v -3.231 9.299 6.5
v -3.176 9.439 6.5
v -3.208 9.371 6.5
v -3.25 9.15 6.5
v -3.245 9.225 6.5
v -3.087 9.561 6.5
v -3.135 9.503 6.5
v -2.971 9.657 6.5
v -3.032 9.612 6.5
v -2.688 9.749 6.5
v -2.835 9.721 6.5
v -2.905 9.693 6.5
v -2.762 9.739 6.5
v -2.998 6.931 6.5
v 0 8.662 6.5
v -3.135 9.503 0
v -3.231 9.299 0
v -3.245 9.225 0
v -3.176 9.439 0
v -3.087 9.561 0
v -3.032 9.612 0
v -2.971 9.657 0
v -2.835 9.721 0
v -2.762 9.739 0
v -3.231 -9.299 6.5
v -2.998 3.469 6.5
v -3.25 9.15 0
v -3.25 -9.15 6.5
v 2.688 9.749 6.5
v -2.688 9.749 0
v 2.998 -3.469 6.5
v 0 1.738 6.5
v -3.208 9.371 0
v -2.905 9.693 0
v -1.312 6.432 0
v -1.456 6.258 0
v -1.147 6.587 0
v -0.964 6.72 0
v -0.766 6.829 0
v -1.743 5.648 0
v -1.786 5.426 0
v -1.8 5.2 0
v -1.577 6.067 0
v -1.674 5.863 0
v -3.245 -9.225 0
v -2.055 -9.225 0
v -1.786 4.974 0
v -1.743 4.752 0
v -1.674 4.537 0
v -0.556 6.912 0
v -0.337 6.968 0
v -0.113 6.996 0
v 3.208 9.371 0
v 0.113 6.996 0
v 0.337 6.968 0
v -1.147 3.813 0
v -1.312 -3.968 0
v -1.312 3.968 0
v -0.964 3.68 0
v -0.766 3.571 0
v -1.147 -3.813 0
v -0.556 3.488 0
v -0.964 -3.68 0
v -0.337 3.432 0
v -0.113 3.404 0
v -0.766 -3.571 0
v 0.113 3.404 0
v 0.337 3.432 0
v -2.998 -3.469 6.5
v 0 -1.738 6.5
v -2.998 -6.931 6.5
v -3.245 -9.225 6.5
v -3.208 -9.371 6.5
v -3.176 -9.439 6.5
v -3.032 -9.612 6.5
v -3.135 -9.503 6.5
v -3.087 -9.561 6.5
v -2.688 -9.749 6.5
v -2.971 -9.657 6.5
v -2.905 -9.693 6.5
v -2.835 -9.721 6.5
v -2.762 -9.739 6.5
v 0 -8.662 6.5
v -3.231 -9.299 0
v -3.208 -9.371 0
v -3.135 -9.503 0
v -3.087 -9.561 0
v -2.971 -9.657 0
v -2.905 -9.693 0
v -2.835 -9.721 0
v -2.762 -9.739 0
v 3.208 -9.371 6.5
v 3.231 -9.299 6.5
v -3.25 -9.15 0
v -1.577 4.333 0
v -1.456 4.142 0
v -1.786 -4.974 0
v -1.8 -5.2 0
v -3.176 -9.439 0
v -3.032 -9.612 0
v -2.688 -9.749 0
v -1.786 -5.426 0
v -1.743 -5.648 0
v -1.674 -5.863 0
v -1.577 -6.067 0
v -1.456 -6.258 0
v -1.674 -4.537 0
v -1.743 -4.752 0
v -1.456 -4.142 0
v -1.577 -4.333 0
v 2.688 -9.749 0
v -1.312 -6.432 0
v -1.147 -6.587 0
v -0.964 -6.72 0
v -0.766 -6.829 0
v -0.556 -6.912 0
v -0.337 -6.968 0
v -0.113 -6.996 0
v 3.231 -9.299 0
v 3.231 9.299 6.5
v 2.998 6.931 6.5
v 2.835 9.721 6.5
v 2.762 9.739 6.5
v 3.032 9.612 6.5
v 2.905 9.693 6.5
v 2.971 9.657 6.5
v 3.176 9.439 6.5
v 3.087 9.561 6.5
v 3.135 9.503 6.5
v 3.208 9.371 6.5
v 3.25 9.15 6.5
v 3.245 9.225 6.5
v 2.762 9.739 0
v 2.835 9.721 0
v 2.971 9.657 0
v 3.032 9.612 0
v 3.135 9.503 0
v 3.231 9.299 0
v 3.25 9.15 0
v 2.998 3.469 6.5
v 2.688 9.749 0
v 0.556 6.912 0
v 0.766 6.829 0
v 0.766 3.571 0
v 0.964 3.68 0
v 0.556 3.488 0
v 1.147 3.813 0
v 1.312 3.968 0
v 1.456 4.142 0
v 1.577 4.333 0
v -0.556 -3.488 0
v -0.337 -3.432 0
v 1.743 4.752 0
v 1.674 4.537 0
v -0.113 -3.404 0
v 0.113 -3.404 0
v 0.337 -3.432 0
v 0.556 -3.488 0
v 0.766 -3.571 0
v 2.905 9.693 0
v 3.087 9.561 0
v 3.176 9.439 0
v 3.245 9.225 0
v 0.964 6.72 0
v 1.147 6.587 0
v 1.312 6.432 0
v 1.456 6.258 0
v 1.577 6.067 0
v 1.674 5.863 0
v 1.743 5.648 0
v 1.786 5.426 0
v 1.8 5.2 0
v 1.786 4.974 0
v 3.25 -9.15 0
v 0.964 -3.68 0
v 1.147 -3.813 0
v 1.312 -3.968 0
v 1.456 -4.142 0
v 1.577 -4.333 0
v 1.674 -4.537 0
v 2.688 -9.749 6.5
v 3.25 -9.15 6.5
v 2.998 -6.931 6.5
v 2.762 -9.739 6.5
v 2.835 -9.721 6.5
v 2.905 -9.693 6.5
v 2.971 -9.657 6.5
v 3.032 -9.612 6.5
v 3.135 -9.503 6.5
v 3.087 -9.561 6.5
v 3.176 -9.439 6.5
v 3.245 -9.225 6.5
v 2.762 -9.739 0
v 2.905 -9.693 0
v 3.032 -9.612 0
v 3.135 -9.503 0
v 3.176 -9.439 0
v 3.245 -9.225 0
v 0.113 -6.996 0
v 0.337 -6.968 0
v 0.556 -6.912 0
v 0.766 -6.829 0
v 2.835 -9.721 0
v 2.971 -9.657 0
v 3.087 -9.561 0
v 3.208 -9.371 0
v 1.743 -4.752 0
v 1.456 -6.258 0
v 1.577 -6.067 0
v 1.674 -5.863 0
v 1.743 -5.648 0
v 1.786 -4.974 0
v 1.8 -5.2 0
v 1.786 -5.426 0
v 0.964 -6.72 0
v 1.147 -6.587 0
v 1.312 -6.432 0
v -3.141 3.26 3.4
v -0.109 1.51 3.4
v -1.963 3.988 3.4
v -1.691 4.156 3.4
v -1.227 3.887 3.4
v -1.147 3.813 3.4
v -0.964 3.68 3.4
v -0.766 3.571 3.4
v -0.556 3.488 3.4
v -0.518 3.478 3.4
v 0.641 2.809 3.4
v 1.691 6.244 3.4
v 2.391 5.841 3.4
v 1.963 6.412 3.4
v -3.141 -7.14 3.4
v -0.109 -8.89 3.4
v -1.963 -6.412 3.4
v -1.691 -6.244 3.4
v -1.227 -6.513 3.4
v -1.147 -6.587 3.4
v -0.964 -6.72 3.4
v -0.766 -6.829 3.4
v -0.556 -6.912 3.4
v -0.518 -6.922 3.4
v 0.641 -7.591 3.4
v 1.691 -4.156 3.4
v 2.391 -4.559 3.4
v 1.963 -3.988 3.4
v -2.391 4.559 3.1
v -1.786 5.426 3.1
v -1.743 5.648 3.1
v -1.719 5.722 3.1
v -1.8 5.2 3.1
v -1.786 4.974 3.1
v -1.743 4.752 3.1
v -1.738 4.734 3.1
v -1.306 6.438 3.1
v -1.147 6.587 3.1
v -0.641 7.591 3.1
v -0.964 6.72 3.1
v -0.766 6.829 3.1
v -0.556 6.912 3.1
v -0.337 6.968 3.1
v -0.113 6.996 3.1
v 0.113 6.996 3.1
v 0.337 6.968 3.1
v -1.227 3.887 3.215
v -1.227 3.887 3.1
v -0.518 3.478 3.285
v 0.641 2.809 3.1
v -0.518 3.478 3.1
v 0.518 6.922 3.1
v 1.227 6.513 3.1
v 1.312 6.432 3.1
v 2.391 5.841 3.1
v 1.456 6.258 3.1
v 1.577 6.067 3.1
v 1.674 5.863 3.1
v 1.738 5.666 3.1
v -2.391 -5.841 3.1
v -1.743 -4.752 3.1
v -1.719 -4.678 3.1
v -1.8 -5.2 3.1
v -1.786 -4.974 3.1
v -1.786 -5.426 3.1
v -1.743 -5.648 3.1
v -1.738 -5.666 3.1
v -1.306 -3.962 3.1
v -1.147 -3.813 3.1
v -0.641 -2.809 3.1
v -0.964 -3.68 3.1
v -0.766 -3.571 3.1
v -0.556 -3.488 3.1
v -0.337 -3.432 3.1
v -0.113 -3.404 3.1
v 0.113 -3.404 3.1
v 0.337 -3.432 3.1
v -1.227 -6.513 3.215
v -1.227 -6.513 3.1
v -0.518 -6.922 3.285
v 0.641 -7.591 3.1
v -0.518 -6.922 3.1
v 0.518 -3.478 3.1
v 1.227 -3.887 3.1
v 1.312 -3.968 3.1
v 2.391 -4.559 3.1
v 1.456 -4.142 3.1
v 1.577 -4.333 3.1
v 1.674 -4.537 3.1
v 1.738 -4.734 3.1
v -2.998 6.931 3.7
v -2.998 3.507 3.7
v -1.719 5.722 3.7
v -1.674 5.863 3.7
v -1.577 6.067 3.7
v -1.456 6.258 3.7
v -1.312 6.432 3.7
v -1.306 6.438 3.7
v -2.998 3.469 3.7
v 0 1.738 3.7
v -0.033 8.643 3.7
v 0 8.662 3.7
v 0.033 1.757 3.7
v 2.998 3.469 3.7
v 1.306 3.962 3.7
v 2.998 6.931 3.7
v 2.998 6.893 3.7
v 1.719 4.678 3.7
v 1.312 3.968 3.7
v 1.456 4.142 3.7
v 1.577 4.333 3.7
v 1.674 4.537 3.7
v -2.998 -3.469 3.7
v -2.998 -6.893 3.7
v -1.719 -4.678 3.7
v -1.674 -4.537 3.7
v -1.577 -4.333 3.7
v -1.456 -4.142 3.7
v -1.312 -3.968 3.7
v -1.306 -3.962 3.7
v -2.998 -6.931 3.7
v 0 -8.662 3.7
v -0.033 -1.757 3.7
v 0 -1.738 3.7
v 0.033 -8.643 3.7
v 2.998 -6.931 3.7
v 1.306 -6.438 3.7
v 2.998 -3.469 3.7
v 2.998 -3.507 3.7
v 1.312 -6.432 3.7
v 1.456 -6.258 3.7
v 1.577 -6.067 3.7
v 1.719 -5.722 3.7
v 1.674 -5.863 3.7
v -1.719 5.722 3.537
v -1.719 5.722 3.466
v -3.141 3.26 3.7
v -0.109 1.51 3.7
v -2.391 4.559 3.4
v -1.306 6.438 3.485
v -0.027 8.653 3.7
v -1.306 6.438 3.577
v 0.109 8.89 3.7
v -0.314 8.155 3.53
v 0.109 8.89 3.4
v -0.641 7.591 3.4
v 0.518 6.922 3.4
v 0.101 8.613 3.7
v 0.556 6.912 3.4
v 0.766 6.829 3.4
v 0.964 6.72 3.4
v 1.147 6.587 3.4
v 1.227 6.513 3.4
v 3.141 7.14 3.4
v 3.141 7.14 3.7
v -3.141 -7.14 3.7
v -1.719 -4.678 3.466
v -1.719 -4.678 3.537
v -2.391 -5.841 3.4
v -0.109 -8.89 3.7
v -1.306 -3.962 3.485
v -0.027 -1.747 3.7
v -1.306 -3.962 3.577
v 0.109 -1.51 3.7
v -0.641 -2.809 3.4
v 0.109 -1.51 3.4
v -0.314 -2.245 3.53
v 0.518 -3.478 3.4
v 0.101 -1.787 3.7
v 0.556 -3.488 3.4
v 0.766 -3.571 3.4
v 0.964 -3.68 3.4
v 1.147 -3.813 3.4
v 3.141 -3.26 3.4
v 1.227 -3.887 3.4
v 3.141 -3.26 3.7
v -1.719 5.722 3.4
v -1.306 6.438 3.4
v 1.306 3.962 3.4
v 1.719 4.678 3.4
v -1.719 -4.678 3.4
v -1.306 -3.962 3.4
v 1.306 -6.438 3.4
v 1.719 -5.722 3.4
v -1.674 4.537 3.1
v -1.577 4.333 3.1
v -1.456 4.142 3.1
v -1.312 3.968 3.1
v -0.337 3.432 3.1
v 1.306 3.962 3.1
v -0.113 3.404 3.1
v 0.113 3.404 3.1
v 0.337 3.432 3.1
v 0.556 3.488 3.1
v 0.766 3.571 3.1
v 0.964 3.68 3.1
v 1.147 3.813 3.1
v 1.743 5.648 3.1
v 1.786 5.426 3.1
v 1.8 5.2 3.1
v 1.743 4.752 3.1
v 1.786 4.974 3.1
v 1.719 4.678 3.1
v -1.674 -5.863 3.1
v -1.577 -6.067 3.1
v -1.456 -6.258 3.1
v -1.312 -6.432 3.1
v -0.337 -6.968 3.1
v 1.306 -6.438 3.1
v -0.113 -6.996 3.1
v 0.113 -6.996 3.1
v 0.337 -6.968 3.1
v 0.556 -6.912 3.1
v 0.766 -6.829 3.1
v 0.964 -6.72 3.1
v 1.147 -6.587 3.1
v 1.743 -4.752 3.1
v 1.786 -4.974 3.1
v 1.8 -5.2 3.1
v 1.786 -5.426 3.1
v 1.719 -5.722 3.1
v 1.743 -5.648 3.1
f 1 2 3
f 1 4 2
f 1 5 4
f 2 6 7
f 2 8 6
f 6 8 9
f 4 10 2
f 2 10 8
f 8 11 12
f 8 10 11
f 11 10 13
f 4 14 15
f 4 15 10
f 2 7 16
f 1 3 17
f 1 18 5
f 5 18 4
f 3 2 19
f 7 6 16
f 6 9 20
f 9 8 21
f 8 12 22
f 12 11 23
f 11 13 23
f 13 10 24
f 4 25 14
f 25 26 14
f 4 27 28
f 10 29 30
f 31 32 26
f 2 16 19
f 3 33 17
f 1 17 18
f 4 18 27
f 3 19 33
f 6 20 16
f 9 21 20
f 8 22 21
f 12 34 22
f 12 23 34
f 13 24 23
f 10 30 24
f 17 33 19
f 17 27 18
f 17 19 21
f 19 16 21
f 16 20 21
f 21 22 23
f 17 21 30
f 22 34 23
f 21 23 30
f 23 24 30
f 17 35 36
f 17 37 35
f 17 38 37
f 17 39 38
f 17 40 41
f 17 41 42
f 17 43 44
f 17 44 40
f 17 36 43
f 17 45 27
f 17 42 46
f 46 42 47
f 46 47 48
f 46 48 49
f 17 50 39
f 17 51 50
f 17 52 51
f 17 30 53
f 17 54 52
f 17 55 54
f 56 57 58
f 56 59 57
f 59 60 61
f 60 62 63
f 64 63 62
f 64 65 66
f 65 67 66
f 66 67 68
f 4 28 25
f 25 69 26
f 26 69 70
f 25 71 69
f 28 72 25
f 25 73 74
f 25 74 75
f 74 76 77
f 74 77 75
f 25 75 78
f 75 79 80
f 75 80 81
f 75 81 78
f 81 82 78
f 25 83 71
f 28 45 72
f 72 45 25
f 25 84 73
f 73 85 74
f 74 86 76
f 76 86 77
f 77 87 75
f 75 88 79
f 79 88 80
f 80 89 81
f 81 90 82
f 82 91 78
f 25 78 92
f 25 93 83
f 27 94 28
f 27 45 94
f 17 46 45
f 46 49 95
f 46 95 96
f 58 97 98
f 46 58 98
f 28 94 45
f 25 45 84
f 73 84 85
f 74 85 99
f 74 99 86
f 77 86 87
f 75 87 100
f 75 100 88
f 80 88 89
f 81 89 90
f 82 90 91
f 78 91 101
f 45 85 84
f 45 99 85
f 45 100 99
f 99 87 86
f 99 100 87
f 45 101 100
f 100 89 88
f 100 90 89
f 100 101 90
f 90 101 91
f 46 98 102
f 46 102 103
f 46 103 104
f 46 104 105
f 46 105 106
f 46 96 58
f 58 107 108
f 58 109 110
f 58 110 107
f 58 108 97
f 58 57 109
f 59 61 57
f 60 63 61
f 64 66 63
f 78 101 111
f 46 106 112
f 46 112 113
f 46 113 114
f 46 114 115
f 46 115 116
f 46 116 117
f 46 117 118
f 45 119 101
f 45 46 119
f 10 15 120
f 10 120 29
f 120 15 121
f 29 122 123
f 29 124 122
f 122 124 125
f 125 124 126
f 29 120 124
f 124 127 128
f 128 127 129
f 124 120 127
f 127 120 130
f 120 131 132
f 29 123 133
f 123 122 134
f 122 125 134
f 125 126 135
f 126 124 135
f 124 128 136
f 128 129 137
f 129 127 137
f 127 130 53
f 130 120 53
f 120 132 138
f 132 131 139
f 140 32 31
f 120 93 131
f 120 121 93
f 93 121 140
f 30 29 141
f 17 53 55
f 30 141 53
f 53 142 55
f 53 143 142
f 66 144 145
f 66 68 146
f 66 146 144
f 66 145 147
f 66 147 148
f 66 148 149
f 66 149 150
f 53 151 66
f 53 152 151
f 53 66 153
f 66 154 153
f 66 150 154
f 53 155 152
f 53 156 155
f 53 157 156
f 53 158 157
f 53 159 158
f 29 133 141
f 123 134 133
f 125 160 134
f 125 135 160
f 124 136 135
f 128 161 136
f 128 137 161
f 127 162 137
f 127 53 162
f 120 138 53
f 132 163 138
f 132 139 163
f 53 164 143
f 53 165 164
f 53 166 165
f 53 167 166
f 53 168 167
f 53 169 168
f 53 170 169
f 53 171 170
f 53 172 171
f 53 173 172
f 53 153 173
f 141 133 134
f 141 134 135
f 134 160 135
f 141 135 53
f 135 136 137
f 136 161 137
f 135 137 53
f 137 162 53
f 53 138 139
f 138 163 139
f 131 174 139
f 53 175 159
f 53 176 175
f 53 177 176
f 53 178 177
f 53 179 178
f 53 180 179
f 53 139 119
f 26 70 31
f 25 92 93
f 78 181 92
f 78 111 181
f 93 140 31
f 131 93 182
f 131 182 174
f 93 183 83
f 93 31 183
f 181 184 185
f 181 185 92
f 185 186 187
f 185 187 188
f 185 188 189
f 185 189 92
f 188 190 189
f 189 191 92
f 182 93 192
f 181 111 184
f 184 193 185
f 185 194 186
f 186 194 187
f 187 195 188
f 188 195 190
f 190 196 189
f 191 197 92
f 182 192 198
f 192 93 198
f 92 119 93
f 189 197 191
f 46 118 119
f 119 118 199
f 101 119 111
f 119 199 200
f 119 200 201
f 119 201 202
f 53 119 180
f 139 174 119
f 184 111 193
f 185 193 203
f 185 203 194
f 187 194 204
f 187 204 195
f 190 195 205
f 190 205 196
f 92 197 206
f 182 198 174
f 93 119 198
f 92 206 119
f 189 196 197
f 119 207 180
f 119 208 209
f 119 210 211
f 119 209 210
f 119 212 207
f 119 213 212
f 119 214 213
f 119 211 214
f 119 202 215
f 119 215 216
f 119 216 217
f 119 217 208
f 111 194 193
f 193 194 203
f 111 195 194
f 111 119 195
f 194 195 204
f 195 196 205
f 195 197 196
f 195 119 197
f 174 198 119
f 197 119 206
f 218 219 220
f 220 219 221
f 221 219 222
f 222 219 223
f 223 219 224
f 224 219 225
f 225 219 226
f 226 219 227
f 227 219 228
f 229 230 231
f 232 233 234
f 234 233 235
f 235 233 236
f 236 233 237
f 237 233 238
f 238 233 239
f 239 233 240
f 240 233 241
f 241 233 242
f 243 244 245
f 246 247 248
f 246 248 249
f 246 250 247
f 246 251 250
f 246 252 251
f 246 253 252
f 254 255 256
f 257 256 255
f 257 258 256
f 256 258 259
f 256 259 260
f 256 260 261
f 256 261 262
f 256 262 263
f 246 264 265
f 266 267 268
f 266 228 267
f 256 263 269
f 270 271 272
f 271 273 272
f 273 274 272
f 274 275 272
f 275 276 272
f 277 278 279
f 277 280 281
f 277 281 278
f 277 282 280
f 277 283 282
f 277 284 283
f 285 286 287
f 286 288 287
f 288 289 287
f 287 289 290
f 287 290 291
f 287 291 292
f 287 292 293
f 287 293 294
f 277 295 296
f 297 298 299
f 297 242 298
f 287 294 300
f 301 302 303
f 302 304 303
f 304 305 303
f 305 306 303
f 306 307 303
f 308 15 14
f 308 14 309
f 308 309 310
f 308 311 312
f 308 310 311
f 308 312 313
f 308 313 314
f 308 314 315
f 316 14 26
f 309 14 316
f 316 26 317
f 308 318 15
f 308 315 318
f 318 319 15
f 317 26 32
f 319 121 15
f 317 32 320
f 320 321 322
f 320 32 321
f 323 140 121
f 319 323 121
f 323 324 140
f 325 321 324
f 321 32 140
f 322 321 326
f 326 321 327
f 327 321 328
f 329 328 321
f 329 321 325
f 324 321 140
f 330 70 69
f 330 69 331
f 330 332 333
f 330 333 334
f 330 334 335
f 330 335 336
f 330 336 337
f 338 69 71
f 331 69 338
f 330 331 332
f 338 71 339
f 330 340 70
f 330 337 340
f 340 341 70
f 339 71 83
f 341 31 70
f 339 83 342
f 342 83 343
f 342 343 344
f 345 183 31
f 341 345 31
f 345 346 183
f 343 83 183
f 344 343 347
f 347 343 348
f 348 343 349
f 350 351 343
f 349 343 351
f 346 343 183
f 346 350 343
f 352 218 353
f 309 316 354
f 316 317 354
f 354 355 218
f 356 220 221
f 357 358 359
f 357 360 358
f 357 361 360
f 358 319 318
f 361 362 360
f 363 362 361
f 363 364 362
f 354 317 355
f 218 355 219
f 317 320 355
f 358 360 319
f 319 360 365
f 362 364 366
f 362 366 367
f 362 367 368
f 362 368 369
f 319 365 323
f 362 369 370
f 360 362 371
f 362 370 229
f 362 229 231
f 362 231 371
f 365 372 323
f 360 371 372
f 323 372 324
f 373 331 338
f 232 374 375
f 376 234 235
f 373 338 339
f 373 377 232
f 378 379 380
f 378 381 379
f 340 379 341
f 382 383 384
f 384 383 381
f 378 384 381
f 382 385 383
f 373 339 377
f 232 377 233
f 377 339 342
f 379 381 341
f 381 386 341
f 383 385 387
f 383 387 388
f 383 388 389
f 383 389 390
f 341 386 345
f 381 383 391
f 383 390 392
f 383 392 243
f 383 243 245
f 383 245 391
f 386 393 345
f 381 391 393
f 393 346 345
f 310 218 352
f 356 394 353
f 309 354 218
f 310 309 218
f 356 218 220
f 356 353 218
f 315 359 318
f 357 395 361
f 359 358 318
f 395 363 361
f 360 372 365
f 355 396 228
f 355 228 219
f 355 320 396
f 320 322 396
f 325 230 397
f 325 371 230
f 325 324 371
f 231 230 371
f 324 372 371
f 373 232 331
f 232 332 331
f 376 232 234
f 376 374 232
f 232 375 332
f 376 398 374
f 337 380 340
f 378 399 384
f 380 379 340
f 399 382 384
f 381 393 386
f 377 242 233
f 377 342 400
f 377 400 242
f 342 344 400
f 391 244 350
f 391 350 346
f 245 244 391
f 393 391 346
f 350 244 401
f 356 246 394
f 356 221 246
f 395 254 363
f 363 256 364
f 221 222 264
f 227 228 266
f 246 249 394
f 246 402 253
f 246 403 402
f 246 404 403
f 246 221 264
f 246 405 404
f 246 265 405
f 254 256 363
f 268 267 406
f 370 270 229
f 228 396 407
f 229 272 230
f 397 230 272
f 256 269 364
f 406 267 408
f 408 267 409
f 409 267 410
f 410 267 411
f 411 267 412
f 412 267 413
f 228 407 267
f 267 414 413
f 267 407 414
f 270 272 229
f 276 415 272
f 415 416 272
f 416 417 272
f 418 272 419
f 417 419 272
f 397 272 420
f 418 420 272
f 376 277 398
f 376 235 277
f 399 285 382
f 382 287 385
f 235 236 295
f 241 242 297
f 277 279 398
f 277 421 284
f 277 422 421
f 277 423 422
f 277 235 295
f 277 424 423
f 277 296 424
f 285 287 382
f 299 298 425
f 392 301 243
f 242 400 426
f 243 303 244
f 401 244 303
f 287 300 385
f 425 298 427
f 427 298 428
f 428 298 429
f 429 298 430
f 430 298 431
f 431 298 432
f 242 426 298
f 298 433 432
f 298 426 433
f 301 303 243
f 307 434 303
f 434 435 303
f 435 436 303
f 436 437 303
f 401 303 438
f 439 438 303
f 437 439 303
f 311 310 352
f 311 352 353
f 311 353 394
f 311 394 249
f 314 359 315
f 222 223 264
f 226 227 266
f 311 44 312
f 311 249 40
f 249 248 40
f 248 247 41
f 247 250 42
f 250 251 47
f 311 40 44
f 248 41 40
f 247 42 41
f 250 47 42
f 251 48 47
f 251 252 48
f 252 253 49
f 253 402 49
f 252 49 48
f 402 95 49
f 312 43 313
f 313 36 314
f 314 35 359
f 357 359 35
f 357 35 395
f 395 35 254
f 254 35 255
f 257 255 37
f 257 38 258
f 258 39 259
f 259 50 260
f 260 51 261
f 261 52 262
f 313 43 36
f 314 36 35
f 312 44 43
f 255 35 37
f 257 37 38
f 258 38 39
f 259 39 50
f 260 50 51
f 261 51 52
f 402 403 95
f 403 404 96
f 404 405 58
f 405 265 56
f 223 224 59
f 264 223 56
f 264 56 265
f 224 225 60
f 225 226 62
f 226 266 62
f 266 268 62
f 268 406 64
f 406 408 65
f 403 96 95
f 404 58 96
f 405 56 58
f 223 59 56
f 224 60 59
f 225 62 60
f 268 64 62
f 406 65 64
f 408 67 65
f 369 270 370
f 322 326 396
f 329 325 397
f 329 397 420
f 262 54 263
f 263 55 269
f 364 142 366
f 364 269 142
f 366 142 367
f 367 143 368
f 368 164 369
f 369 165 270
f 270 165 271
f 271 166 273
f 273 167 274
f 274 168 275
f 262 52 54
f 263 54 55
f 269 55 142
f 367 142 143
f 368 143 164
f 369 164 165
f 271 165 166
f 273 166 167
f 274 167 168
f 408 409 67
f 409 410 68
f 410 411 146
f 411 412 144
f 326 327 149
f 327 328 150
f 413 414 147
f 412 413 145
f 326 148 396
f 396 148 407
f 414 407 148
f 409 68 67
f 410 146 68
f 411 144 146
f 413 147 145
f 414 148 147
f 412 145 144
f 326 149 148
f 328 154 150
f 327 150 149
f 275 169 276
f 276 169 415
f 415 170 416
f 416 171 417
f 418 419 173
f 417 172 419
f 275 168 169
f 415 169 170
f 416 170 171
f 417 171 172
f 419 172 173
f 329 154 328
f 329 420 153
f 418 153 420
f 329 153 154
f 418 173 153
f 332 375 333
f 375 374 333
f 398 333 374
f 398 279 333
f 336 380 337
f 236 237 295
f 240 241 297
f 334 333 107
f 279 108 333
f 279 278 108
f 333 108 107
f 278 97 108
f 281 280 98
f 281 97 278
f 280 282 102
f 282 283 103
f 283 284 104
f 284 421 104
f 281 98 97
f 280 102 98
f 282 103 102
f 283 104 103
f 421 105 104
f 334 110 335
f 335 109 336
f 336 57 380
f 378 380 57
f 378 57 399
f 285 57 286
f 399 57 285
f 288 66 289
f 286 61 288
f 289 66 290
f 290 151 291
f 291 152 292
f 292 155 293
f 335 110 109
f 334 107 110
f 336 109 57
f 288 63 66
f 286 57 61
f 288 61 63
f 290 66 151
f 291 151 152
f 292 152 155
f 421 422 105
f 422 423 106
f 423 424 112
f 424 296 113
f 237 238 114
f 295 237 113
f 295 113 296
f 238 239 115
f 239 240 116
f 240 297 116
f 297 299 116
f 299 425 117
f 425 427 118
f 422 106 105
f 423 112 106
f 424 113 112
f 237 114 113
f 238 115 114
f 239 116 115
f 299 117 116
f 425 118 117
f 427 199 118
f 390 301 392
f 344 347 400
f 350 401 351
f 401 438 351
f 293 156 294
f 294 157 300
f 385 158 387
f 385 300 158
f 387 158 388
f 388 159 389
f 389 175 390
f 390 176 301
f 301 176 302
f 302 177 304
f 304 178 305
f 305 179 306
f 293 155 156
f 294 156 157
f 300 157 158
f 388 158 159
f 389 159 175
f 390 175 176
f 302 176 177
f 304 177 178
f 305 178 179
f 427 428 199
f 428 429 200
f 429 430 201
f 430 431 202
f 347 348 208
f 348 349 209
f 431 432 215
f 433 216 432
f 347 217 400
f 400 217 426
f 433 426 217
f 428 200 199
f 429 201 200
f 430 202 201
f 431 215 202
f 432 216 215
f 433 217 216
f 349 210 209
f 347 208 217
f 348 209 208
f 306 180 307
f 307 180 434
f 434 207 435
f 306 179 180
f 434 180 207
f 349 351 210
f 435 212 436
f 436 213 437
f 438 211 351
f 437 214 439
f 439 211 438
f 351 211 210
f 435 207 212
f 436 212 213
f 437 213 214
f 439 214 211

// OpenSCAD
$fn = 50;

difference() {
	union() {
		translate(v = [34.5, 0, -3.65]) {
			rotate(a = [180, 0, 0]) {
				difference() {
					union() {
						translate(v = [-34.5, 0, -10.15]) {
							hull() {
								translate(v = [-2.65, 9.15, 0]) {
									cylinder(h = 6.5, r = 0.6);
								}
								translate(v = [2.65, 9.15, 0]) {
									cylinder(h = 6.5, r = 0.6);
								}
								translate(v = [-2.65, -9.15, 0]) {
									cylinder(h = 6.5, r = 0.6);
								}
								translate(v = [2.65, -9.15, 0]) {
									cylinder(h = 6.5, r = 0.6);
								}
							}
						}
					}
					union() {
						translate(v = [-34.5, -5.2, -7.3500000000000005]) {
							rotate(a = [180, 0, 30]) {
								difference() {
									union() {
										translate(v = [-1.75, -3.25, -0.3]) {
											cube(size = [3.5, 6.5, 0.3]);
										}
										translate(v = [-1.75, -1.75, -0.6]) {
											cube(size = [3.5, 3.5, 0.3]);
										}
										translate(v = [-1.75, -3.25, 52.8]) {
											cube(size = [3.5, 6.5, 0.3]);
										}
										translate(v = [-1.75, -1.75, 53.099999999999994]) {
											cube(size = [3.5, 3.5, 0.3]);
										}
										linear_extrude(height = 102.8) {
											polygon(points = [[3.4619999999999997, 0.0], [1.7310000000000003, 2.9981799479017264], [-1.7309999999999992, 2.9981799479017264], [-3.4619999999999997, 4.2397272186481365e-16], [-1.7310000000000014, -2.998179947901726], [1.7309999999999977, -2.9981799479017277]]);
										}
										translate(v = [-1.75, -3.25, -0.3]) {
											cube(size = [3.5, 6.5, 0.3]);
										}
										translate(v = [-1.75, -1.75, -0.6]) {
											cube(size = [3.5, 3.5, 0.3]);
										}
										translate(v = [-1.75, -3.25, 102.8]) {
											cube(size = [3.5, 6.5, 0.3]);
										}
										translate(v = [-1.75, -1.75, 103.1]) {
											cube(size = [3.5, 3.5, 0.3]);
										}
										translate(v = [-1.75, -3.25, -0.3]) {
											cube(size = [3.5, 6.5, 0.3]);
										}
										translate(v = [-1.75, -1.75, -0.6]) {
											cube(size = [3.5, 3.5, 0.3]);
										}
										translate(v = [-1.75, -3.25, 152.8]) {
											cube(size = [3.5, 6.5, 0.3]);
										}
										translate(v = [-1.75, -1.75, 153.10000000000002]) {
											cube(size = [3.5, 3.5, 0.3]);
										}
									}
									union();
								}
							}
						}
						translate(v = [-34.5, 5.2, -7.3500000000000005]) {
							rotate(a = [180, 0, 30]) {
								difference() {
									union() {
										translate(v = [-1.75, -3.25, -0.3]) {
											cube(size = [3.5, 6.5, 0.3]);
										}
										translate(v = [-1.75, -1.75, -0.6]) {
											cube(size = [3.5, 3.5, 0.3]);
										}
										translate(v = [-1.75, -3.25, 52.8]) {
											cube(size = [3.5, 6.5, 0.3]);
										}
										translate(v = [-1.75, -1.75, 53.099999999999994]) {
											cube(size = [3.5, 3.5, 0.3]);
										}
										linear_extrude(height = 102.8) {
											polygon(points = [[3.4619999999999997, 0.0], [1.7310000000000003, 2.9981799479017264], [-1.7309999999999992, 2.9981799479017264], [-3.4619999999999997, 4.2397272186481365e-16], [-1.7310000000000014, -2.998179947901726], [1.7309999999999977, -2.9981799479017277]]);
										}
										translate(v = [-1.75, -3.25, -0.3]) {
											cube(size = [3.5, 6.5, 0.3]);
										}
										translate(v = [-1.75, -1.75, -0.6]) {
											cube(size = [3.5, 3.5, 0.3]);
										}
										translate(v = [-1.75, -3.25, 102.8]) {
											cube(size = [3.5, 6.5, 0.3]);
										}
										translate(v = [-1.75, -1.75, 103.1]) {
											cube(size = [3.5, 3.5, 0.3]);
										}
										translate(v = [-1.75, -3.25, -0.3]) {
											cube(size = [3.5, 6.5, 0.3]);
										}
										translate(v = [-1.75, -1.75, -0.6]) {
											cube(size = [3.5, 3.5, 0.3]);
										}
										translate(v = [-1.75, -3.25, 152.8]) {
											cube(size = [3.5, 6.5, 0.3]);
										}
										translate(v = [-1.75, -1.75, 153.10000000000002]) {
											cube(size = [3.5, 3.5, 0.3]);
										}
									}
									union();
								}
							}
						}
						translate(v = [-34.5, -5.2, -11.15]) {
							cylinder(h = 8.5, r = 1.8);
						}
						translate(v = [-34.5, 5.2, -11.15]) {
							cylinder(h = 8.5, r = 1.8);
						}
					}
				}
			}
		}
	}
	union();
}
